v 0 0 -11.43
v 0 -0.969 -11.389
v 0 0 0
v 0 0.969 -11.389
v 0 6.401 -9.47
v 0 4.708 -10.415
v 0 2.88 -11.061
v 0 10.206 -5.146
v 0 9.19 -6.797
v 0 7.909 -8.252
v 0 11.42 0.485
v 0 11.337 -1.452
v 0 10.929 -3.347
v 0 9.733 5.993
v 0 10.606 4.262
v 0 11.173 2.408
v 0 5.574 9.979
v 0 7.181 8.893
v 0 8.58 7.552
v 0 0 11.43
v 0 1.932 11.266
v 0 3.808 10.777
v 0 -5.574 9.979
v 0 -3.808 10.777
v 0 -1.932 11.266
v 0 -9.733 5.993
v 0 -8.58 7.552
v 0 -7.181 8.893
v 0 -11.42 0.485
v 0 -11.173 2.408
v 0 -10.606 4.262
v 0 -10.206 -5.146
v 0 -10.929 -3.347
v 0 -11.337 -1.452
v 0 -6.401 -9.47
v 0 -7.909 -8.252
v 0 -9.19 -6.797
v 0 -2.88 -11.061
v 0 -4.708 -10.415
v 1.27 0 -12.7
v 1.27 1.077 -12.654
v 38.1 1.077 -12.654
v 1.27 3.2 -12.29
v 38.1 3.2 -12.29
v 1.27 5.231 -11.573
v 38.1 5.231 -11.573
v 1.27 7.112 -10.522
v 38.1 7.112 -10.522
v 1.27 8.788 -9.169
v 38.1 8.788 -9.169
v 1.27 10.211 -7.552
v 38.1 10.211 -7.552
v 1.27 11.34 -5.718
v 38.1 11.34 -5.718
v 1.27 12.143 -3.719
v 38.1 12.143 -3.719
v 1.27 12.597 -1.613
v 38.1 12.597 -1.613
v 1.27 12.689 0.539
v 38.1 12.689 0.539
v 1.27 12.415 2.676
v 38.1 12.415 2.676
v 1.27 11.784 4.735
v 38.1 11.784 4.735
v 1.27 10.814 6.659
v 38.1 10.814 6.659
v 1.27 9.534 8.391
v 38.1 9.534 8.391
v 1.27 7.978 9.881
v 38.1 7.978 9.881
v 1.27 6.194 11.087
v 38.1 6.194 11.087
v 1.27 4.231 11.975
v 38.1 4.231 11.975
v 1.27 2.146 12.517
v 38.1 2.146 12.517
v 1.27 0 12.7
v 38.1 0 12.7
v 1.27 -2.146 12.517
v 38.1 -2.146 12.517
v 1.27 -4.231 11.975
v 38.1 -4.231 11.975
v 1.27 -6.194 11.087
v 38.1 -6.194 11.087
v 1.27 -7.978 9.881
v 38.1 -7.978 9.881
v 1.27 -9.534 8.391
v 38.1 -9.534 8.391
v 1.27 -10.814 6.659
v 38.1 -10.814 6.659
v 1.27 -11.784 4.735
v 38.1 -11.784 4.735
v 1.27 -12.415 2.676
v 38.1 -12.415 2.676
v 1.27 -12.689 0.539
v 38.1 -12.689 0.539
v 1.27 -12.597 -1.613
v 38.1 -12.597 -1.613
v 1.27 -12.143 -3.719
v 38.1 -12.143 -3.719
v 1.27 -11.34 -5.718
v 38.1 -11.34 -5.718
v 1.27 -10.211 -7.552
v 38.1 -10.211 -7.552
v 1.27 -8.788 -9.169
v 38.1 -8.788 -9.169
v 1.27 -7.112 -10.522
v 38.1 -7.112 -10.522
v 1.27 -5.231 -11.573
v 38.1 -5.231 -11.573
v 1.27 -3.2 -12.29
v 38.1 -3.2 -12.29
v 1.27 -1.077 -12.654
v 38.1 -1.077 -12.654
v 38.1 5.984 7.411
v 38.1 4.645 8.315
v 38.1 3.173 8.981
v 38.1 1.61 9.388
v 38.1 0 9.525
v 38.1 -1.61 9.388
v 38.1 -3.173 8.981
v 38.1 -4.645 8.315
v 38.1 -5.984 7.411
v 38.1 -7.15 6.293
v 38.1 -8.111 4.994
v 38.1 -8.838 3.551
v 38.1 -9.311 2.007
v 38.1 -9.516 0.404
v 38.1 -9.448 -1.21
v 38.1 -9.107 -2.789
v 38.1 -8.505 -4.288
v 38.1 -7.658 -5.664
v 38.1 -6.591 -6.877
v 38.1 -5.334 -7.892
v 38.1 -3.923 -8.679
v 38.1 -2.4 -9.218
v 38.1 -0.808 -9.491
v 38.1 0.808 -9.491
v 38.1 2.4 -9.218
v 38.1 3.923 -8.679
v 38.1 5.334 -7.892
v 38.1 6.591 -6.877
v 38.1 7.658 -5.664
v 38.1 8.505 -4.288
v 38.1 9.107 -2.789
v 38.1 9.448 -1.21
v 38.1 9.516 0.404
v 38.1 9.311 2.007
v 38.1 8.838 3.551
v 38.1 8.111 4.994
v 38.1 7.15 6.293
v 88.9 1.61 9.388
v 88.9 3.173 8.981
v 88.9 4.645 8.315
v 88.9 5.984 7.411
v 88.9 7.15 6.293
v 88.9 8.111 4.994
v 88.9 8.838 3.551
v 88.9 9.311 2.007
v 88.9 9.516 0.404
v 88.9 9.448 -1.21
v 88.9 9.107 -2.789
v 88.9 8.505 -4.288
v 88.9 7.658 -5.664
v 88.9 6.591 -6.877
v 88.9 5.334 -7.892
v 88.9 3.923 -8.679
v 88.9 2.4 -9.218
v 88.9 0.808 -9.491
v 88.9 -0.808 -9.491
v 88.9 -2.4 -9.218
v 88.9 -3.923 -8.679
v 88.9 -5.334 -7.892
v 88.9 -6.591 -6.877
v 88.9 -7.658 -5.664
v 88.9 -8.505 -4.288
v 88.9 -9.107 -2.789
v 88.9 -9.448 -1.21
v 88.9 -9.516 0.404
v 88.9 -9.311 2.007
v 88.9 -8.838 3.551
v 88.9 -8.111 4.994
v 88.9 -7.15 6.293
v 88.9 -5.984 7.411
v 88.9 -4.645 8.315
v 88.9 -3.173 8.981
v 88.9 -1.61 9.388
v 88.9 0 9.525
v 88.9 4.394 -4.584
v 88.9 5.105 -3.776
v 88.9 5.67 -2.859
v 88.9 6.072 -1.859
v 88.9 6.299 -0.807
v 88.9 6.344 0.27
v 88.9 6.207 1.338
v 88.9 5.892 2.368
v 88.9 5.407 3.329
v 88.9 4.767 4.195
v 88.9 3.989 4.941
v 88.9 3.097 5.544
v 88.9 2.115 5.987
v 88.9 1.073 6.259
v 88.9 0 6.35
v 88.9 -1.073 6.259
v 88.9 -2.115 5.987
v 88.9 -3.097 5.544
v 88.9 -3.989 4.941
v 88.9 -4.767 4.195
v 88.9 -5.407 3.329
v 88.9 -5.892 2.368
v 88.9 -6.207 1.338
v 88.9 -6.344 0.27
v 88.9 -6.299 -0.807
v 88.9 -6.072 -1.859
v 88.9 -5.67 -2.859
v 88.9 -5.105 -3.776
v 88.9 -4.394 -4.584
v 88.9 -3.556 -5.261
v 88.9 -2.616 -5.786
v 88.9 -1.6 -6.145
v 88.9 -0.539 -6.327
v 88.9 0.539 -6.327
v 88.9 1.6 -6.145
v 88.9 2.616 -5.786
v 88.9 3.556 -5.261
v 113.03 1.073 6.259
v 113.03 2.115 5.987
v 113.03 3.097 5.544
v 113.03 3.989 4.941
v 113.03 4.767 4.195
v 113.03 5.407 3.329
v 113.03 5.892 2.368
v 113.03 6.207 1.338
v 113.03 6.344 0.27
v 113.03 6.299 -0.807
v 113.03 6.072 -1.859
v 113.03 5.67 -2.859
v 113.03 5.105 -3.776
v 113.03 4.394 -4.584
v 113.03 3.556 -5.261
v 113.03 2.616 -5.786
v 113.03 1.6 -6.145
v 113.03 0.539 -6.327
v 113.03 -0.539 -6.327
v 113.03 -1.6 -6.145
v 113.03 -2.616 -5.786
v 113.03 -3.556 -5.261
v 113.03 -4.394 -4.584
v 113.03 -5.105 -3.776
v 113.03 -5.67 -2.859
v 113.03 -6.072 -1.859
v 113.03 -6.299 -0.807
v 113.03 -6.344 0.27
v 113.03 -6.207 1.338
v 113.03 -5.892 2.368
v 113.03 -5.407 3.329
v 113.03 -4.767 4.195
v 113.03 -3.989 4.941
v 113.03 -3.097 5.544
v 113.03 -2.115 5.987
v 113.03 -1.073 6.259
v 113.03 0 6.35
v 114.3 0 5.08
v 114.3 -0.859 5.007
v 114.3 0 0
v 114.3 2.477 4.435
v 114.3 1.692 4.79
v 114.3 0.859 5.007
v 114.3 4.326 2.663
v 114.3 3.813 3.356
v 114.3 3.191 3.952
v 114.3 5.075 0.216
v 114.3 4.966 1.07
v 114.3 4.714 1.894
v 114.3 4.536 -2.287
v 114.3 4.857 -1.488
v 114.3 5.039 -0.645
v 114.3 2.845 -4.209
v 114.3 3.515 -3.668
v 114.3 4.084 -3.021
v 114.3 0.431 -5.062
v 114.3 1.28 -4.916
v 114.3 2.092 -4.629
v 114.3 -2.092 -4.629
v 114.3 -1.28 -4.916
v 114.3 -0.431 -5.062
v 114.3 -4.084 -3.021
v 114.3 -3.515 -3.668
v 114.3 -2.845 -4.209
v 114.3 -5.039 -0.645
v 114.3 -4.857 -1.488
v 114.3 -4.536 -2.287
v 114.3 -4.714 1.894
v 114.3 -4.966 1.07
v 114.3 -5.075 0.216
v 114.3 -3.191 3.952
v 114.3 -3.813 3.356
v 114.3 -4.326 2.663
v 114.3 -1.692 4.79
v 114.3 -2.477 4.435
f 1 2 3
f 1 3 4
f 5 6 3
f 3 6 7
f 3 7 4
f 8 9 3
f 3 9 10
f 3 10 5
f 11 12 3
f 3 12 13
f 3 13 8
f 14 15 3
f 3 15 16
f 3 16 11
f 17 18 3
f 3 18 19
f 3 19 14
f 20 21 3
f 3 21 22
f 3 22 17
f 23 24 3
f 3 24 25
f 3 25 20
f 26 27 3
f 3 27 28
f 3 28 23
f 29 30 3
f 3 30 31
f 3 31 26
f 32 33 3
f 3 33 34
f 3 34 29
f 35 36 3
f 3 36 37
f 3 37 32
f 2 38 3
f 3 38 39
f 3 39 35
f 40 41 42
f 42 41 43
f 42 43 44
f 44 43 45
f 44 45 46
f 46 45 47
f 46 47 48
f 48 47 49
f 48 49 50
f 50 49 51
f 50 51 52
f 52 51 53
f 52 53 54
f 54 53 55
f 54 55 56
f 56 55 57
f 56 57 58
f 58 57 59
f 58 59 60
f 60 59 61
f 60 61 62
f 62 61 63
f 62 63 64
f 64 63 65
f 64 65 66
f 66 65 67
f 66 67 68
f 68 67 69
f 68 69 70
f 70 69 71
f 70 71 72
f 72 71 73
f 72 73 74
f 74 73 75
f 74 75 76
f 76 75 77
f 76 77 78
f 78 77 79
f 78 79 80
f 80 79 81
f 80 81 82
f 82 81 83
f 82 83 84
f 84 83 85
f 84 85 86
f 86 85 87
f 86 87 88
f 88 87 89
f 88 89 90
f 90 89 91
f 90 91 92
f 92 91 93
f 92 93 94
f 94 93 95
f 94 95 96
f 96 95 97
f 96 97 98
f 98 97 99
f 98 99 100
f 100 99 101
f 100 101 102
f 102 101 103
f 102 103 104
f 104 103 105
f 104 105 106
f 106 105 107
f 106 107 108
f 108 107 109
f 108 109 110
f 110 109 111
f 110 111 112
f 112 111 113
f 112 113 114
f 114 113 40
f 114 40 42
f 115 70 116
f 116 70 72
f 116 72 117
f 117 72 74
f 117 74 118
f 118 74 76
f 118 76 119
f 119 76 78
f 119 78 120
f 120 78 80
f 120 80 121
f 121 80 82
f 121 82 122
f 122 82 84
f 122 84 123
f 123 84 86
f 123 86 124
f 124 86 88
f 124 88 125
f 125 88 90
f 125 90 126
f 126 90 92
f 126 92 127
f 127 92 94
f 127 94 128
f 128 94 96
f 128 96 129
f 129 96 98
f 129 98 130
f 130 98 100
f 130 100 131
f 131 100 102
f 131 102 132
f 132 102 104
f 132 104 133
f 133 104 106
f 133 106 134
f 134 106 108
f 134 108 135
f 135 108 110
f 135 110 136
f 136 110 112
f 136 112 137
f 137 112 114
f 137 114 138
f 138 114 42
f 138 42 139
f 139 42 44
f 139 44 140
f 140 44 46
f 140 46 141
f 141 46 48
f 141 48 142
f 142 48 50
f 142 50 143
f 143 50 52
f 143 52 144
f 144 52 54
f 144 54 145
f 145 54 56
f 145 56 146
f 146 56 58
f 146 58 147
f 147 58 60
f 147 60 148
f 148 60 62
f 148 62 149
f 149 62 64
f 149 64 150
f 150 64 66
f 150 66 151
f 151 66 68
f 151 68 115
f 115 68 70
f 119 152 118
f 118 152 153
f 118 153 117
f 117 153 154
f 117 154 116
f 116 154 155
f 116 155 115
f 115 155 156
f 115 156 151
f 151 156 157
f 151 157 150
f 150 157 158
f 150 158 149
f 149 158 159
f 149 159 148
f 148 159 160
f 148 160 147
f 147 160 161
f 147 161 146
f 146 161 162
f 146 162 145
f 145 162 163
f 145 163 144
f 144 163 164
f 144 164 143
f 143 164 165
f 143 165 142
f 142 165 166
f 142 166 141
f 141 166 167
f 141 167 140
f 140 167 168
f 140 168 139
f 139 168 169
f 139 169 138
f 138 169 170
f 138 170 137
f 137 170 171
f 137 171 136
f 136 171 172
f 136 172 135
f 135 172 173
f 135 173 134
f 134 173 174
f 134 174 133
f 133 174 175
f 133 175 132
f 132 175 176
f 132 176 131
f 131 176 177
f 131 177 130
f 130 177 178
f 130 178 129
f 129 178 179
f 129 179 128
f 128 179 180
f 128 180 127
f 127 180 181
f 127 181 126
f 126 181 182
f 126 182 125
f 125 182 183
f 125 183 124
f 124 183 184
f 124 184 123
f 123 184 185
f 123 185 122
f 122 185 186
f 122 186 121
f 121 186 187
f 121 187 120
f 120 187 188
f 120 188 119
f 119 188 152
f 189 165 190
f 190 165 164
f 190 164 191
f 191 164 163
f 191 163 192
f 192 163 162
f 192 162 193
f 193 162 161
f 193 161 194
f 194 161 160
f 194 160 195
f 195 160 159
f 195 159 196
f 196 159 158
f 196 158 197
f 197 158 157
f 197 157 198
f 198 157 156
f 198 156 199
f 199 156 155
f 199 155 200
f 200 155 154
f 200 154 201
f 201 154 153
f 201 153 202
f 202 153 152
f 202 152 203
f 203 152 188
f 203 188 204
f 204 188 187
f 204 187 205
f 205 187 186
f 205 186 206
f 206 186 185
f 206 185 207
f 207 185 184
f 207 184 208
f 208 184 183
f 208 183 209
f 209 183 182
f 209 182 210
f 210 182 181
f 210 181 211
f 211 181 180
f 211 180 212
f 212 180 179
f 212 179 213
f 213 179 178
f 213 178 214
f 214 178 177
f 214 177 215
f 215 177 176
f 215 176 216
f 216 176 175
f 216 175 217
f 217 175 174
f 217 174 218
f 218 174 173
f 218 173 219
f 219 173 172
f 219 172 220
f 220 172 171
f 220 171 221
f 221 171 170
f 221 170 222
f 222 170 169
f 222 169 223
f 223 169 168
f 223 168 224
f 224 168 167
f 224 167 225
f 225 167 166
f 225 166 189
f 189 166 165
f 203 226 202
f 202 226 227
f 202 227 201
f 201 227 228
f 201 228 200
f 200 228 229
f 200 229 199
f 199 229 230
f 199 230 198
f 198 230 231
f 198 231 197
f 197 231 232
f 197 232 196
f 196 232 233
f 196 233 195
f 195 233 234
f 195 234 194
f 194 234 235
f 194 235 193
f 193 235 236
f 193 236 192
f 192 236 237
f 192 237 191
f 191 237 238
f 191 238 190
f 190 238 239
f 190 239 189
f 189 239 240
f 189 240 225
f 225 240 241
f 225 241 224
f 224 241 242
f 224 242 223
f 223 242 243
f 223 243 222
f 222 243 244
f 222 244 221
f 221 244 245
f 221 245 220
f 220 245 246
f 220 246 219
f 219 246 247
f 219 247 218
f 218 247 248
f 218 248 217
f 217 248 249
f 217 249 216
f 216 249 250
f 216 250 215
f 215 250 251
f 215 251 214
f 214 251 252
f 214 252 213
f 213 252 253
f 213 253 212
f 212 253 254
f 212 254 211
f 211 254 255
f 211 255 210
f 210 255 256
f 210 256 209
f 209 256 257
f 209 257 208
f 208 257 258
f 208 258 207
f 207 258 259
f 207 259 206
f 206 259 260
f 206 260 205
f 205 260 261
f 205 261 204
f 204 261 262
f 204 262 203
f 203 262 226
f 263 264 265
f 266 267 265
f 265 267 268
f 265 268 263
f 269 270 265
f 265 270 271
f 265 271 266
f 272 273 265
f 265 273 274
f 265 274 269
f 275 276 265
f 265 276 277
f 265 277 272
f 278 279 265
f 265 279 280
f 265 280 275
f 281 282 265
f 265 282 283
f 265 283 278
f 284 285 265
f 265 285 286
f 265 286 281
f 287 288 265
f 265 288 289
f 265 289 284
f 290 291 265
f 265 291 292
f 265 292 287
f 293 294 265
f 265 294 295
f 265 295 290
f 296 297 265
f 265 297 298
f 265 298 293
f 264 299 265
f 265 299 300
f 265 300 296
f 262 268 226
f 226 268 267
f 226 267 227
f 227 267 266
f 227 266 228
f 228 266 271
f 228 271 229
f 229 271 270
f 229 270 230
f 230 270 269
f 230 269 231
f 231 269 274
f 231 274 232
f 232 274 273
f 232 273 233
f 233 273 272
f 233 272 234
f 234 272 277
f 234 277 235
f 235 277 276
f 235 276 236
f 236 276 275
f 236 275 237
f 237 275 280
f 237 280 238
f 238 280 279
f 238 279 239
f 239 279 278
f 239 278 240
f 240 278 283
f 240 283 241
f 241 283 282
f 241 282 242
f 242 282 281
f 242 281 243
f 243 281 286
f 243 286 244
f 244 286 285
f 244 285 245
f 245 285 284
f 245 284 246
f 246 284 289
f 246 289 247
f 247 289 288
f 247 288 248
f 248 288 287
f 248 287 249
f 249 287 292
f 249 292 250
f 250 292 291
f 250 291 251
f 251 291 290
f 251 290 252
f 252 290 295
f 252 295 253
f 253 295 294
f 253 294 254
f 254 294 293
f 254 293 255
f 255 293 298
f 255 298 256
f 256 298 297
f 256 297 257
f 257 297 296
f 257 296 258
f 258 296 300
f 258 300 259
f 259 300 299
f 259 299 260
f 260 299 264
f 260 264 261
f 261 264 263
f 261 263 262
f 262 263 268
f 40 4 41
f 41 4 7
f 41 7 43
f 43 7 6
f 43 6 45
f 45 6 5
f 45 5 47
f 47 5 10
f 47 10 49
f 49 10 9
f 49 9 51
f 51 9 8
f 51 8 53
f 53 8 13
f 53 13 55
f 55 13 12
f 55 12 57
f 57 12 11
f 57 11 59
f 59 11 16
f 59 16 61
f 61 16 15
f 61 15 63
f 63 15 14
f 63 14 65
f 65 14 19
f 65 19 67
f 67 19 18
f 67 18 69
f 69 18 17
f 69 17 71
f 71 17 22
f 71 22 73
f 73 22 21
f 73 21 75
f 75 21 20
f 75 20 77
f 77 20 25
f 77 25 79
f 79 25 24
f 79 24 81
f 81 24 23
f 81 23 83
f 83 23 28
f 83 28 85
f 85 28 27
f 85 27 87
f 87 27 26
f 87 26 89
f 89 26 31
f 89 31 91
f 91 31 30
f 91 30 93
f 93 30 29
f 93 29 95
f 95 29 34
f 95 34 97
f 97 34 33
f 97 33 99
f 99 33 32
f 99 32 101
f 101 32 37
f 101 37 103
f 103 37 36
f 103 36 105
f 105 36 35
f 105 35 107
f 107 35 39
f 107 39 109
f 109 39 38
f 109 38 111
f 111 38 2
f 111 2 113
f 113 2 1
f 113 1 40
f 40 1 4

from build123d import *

# Parameters (mm, degrees)
CHAMFER1_SIZE = 1.27


with BuildPart() as part:
    # Sketch1 → Shaft (revolve)
    with BuildSketch(Plane.XY, mode=Mode.PRIVATE) as shaft_sk:
        Polygon((0, 0), (114.3, 0), (114.3, 6.35), (88.9, 6.35), (88.9, 9.525), (38.1, 9.525), (38.1, 12.7), (0, 12.7), align=None)
    revolve(shaft_sk.sketch.rotate(Axis((0, 0, 0), (1, 0, 0)), 90), axis=Axis((0, 0, 0), (1, 0, 0)))

    # Chamfer1
    chamfer1_edges = [part.edges().sort_by_distance(p)[0] for p in [
        (0, 0, -12.7),
        (114.3, 0, -6.35),
    ]]
    chamfer(chamfer1_edges, length=CHAMFER1_SIZE)


solid = part.part
